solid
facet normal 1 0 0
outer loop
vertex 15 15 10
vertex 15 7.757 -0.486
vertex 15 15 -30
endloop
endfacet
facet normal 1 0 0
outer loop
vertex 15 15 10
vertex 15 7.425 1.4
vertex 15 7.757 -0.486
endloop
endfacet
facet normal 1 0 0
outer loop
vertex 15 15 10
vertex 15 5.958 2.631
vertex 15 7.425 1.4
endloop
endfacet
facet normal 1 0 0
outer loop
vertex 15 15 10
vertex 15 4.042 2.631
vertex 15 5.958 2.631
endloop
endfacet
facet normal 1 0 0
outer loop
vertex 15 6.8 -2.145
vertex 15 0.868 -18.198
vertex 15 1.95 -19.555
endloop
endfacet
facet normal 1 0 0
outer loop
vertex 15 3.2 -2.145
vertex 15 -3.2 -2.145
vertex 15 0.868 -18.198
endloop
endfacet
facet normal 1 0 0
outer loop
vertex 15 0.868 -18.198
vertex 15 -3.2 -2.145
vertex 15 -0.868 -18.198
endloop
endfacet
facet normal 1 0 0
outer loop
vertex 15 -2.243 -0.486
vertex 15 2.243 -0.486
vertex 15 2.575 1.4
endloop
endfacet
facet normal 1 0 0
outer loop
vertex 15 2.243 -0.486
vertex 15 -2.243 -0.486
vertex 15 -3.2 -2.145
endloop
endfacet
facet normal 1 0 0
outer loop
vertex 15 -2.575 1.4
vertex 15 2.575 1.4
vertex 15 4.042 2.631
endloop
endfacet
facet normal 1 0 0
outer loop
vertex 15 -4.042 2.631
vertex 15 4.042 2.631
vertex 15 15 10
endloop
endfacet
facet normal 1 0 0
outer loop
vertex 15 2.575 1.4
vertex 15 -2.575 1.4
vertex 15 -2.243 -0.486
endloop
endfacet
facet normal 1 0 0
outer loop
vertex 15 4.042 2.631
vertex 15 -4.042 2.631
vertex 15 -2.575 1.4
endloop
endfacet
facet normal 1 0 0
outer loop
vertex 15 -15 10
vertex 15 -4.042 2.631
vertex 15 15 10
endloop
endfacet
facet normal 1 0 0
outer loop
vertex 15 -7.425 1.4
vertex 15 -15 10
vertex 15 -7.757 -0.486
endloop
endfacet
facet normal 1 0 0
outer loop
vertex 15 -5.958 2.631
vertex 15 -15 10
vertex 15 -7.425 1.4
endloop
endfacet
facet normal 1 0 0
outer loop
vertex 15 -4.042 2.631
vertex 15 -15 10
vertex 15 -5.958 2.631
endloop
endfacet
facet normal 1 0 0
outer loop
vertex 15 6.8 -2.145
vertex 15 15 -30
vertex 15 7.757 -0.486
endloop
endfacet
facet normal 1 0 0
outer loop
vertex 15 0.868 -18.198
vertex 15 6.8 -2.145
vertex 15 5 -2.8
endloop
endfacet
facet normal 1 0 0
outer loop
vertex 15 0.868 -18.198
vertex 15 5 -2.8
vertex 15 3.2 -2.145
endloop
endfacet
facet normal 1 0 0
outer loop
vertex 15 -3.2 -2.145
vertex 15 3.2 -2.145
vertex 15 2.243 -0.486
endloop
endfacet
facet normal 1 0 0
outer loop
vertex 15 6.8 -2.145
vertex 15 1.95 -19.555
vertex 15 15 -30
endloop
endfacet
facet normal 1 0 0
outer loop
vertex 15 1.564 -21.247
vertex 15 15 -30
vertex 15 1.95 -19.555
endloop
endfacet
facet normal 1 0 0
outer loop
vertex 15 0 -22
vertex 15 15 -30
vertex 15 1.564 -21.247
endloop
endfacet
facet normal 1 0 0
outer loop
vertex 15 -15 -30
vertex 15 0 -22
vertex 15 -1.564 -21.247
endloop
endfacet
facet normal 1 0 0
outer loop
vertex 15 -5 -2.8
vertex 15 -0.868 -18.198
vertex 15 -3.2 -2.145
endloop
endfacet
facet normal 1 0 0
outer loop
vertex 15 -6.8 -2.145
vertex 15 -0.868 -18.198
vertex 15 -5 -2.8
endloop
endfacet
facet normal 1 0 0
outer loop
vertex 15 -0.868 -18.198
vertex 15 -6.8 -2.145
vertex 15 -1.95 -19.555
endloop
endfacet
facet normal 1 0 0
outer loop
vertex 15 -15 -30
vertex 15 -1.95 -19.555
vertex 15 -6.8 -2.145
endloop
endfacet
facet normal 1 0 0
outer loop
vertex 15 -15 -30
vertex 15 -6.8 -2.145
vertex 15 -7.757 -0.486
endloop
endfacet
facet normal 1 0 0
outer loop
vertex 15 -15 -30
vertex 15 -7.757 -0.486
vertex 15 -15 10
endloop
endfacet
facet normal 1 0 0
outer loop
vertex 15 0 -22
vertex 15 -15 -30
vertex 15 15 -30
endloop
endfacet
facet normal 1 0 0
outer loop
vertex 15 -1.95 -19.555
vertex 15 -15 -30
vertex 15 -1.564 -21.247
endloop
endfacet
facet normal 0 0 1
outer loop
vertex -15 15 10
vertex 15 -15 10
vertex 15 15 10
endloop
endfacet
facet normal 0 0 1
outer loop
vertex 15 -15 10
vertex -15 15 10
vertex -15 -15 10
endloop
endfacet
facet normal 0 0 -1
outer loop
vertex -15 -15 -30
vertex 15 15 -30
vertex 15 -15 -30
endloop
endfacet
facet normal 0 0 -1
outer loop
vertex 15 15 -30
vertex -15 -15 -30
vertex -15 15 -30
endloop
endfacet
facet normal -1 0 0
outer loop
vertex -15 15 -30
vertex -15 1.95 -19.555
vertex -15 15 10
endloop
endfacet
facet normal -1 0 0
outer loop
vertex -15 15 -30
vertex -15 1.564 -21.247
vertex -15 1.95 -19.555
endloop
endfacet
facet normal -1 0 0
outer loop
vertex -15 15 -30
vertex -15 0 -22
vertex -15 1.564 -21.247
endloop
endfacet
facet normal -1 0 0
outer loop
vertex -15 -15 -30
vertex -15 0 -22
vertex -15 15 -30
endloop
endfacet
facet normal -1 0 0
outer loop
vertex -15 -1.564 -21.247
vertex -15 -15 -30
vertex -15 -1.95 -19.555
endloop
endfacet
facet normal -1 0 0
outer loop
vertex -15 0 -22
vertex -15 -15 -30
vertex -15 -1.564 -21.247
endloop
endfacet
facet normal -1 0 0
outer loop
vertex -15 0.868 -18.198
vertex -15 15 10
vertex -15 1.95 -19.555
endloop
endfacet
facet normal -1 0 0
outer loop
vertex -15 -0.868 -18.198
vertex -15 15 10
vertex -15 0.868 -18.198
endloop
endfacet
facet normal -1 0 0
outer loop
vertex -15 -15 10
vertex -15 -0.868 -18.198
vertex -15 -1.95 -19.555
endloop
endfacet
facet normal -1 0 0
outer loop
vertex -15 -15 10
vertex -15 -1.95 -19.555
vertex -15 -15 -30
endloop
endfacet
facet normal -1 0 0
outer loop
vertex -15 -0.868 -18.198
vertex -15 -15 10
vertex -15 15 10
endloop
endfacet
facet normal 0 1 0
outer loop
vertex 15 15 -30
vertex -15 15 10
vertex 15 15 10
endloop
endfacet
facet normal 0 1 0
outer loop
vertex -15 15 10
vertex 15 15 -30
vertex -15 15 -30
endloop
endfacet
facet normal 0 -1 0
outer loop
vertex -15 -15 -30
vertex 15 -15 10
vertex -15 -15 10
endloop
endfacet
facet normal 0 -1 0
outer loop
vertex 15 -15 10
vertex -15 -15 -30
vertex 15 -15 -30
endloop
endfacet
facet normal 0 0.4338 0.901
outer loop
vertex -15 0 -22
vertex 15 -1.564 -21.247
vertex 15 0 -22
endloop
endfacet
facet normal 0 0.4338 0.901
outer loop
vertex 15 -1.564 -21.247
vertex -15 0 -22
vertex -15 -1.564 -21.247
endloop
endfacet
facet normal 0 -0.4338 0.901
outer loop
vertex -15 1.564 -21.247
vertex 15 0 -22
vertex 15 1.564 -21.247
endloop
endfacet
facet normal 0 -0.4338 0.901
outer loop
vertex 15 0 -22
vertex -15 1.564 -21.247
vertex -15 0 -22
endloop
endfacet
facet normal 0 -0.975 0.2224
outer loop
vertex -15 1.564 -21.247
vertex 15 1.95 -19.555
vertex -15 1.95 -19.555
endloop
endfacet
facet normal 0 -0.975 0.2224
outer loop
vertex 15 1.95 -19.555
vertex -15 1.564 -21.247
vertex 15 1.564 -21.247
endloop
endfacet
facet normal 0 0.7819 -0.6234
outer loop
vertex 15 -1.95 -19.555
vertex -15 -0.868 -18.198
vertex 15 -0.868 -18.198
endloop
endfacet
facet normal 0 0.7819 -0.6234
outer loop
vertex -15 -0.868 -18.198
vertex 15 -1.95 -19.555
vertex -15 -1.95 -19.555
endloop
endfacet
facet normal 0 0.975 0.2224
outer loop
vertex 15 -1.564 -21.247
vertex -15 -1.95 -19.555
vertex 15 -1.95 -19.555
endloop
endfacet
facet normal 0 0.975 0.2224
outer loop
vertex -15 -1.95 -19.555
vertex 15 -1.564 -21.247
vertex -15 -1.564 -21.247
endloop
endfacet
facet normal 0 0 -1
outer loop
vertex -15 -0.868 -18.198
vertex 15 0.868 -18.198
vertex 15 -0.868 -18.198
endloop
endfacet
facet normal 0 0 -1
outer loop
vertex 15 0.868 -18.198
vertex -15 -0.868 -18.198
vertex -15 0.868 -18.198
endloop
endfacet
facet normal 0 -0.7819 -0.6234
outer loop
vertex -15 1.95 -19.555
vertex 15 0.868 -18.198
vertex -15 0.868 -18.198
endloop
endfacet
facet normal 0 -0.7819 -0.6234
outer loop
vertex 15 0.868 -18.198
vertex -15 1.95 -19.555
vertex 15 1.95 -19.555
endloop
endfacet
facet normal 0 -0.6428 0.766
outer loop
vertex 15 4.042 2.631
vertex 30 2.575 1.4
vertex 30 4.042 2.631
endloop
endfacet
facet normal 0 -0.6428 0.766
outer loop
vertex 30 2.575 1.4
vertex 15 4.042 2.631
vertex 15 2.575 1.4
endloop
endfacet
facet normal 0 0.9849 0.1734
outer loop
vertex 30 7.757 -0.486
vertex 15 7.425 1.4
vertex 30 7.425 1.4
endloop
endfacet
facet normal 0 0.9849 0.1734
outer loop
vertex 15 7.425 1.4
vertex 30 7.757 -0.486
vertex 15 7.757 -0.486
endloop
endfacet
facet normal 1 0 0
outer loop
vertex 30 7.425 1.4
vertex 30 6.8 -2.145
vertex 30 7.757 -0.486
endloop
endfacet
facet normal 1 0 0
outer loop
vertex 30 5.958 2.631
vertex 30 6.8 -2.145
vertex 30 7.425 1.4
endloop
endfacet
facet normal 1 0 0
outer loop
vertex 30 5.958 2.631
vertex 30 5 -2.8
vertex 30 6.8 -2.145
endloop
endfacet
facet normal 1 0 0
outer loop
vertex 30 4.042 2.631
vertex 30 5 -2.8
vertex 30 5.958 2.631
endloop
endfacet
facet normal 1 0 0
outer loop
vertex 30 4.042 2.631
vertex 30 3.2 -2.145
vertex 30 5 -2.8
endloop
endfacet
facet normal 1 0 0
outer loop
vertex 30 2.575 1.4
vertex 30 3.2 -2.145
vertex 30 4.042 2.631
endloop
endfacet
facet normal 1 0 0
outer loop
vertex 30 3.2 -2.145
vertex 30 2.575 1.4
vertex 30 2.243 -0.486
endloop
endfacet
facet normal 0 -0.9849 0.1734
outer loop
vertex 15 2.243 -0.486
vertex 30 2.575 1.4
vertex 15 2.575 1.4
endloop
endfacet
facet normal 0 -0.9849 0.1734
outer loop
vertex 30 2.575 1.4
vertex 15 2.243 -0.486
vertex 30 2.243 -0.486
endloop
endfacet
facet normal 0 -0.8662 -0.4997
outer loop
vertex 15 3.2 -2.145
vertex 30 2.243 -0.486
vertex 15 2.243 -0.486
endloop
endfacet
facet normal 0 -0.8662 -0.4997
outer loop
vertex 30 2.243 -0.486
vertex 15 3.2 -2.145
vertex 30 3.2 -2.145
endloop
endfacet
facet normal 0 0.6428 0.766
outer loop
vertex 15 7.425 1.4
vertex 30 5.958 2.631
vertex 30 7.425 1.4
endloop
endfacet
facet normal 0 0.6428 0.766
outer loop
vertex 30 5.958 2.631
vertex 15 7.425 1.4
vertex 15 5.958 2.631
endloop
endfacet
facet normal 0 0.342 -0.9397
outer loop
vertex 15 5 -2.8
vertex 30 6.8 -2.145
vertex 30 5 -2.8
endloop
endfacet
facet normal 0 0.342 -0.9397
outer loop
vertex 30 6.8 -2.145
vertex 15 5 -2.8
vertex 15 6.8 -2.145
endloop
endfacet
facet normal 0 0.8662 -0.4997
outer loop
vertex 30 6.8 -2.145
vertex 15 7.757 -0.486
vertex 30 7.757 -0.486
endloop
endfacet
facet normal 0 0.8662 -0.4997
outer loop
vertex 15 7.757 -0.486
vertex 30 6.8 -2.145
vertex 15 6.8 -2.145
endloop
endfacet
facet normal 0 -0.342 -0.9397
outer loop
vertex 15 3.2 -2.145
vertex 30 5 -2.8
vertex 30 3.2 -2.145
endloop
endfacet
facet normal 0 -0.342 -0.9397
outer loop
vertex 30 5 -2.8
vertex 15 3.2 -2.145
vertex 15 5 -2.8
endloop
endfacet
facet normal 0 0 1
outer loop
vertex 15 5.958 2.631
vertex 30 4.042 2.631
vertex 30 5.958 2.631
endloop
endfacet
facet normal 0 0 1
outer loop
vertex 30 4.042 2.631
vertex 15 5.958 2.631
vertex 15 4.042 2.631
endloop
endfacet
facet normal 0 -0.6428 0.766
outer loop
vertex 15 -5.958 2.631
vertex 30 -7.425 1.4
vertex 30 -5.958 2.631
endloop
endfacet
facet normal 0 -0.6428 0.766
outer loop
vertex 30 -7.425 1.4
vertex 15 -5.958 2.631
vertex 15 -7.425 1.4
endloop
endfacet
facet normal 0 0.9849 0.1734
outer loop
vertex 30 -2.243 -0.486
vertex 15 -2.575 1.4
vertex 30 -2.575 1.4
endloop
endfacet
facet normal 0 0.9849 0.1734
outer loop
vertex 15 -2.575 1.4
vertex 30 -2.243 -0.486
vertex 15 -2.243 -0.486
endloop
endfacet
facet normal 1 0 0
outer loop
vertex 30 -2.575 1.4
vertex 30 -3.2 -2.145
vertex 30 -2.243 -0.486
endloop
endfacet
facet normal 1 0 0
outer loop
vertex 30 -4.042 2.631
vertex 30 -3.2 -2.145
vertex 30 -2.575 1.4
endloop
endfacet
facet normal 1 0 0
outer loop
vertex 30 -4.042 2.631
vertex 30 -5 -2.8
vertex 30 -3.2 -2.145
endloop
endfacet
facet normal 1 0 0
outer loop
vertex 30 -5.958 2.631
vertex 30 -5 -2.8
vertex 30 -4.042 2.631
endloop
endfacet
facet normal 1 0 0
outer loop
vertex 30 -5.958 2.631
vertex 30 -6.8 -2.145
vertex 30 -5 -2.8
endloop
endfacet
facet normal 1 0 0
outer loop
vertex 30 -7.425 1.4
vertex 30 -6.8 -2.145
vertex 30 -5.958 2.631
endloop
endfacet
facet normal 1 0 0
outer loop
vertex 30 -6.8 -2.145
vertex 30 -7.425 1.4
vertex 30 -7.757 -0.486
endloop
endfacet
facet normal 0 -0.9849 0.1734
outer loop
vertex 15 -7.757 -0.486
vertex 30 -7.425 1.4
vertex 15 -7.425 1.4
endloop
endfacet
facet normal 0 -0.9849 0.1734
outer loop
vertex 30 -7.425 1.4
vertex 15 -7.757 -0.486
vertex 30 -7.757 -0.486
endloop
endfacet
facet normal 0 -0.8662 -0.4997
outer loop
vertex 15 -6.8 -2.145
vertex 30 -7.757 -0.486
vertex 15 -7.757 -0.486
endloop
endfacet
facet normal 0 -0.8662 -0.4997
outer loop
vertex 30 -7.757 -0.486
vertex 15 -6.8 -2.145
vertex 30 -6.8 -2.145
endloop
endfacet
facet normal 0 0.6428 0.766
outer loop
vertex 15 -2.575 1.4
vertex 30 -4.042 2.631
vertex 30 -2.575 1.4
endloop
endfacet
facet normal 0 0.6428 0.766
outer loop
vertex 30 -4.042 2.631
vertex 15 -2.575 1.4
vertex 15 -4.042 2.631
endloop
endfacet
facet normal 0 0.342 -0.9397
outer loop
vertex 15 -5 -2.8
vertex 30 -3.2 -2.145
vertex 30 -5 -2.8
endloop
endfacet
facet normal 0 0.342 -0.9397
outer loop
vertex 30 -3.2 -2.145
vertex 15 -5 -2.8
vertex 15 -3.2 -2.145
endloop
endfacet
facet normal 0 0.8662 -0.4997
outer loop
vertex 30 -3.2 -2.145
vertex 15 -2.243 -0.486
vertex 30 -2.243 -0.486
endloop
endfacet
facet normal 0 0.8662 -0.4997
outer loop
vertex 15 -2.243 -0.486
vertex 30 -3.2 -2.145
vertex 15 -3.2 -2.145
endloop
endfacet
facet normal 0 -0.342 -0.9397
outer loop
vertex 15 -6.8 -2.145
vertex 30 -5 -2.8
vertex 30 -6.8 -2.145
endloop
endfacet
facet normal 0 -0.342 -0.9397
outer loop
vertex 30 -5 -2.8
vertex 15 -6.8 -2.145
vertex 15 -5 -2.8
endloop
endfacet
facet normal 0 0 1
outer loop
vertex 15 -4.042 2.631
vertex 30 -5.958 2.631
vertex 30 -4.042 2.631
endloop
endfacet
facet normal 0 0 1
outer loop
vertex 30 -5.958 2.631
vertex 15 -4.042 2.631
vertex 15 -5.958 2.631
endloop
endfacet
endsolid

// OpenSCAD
wheelbox();
rotate([0,90,0])            
    scale([1,1,1])
        translate([0,5,10])
            cylinder(20,2.8,2.8);
rotate([0,90,0])            
    scale([1,1,1])
        translate([0,-5,10])
            cylinder(20,2.8,2.8);
module wheelbox(){
    difference(){
        rotate([0,0,0])
            translate([0,0,-10])
                cube([30,30,40],center=true);
        rotate([0,90,0])
            translate([20,0,-50])
                cylinder(100,2,2);
    }
    
}
